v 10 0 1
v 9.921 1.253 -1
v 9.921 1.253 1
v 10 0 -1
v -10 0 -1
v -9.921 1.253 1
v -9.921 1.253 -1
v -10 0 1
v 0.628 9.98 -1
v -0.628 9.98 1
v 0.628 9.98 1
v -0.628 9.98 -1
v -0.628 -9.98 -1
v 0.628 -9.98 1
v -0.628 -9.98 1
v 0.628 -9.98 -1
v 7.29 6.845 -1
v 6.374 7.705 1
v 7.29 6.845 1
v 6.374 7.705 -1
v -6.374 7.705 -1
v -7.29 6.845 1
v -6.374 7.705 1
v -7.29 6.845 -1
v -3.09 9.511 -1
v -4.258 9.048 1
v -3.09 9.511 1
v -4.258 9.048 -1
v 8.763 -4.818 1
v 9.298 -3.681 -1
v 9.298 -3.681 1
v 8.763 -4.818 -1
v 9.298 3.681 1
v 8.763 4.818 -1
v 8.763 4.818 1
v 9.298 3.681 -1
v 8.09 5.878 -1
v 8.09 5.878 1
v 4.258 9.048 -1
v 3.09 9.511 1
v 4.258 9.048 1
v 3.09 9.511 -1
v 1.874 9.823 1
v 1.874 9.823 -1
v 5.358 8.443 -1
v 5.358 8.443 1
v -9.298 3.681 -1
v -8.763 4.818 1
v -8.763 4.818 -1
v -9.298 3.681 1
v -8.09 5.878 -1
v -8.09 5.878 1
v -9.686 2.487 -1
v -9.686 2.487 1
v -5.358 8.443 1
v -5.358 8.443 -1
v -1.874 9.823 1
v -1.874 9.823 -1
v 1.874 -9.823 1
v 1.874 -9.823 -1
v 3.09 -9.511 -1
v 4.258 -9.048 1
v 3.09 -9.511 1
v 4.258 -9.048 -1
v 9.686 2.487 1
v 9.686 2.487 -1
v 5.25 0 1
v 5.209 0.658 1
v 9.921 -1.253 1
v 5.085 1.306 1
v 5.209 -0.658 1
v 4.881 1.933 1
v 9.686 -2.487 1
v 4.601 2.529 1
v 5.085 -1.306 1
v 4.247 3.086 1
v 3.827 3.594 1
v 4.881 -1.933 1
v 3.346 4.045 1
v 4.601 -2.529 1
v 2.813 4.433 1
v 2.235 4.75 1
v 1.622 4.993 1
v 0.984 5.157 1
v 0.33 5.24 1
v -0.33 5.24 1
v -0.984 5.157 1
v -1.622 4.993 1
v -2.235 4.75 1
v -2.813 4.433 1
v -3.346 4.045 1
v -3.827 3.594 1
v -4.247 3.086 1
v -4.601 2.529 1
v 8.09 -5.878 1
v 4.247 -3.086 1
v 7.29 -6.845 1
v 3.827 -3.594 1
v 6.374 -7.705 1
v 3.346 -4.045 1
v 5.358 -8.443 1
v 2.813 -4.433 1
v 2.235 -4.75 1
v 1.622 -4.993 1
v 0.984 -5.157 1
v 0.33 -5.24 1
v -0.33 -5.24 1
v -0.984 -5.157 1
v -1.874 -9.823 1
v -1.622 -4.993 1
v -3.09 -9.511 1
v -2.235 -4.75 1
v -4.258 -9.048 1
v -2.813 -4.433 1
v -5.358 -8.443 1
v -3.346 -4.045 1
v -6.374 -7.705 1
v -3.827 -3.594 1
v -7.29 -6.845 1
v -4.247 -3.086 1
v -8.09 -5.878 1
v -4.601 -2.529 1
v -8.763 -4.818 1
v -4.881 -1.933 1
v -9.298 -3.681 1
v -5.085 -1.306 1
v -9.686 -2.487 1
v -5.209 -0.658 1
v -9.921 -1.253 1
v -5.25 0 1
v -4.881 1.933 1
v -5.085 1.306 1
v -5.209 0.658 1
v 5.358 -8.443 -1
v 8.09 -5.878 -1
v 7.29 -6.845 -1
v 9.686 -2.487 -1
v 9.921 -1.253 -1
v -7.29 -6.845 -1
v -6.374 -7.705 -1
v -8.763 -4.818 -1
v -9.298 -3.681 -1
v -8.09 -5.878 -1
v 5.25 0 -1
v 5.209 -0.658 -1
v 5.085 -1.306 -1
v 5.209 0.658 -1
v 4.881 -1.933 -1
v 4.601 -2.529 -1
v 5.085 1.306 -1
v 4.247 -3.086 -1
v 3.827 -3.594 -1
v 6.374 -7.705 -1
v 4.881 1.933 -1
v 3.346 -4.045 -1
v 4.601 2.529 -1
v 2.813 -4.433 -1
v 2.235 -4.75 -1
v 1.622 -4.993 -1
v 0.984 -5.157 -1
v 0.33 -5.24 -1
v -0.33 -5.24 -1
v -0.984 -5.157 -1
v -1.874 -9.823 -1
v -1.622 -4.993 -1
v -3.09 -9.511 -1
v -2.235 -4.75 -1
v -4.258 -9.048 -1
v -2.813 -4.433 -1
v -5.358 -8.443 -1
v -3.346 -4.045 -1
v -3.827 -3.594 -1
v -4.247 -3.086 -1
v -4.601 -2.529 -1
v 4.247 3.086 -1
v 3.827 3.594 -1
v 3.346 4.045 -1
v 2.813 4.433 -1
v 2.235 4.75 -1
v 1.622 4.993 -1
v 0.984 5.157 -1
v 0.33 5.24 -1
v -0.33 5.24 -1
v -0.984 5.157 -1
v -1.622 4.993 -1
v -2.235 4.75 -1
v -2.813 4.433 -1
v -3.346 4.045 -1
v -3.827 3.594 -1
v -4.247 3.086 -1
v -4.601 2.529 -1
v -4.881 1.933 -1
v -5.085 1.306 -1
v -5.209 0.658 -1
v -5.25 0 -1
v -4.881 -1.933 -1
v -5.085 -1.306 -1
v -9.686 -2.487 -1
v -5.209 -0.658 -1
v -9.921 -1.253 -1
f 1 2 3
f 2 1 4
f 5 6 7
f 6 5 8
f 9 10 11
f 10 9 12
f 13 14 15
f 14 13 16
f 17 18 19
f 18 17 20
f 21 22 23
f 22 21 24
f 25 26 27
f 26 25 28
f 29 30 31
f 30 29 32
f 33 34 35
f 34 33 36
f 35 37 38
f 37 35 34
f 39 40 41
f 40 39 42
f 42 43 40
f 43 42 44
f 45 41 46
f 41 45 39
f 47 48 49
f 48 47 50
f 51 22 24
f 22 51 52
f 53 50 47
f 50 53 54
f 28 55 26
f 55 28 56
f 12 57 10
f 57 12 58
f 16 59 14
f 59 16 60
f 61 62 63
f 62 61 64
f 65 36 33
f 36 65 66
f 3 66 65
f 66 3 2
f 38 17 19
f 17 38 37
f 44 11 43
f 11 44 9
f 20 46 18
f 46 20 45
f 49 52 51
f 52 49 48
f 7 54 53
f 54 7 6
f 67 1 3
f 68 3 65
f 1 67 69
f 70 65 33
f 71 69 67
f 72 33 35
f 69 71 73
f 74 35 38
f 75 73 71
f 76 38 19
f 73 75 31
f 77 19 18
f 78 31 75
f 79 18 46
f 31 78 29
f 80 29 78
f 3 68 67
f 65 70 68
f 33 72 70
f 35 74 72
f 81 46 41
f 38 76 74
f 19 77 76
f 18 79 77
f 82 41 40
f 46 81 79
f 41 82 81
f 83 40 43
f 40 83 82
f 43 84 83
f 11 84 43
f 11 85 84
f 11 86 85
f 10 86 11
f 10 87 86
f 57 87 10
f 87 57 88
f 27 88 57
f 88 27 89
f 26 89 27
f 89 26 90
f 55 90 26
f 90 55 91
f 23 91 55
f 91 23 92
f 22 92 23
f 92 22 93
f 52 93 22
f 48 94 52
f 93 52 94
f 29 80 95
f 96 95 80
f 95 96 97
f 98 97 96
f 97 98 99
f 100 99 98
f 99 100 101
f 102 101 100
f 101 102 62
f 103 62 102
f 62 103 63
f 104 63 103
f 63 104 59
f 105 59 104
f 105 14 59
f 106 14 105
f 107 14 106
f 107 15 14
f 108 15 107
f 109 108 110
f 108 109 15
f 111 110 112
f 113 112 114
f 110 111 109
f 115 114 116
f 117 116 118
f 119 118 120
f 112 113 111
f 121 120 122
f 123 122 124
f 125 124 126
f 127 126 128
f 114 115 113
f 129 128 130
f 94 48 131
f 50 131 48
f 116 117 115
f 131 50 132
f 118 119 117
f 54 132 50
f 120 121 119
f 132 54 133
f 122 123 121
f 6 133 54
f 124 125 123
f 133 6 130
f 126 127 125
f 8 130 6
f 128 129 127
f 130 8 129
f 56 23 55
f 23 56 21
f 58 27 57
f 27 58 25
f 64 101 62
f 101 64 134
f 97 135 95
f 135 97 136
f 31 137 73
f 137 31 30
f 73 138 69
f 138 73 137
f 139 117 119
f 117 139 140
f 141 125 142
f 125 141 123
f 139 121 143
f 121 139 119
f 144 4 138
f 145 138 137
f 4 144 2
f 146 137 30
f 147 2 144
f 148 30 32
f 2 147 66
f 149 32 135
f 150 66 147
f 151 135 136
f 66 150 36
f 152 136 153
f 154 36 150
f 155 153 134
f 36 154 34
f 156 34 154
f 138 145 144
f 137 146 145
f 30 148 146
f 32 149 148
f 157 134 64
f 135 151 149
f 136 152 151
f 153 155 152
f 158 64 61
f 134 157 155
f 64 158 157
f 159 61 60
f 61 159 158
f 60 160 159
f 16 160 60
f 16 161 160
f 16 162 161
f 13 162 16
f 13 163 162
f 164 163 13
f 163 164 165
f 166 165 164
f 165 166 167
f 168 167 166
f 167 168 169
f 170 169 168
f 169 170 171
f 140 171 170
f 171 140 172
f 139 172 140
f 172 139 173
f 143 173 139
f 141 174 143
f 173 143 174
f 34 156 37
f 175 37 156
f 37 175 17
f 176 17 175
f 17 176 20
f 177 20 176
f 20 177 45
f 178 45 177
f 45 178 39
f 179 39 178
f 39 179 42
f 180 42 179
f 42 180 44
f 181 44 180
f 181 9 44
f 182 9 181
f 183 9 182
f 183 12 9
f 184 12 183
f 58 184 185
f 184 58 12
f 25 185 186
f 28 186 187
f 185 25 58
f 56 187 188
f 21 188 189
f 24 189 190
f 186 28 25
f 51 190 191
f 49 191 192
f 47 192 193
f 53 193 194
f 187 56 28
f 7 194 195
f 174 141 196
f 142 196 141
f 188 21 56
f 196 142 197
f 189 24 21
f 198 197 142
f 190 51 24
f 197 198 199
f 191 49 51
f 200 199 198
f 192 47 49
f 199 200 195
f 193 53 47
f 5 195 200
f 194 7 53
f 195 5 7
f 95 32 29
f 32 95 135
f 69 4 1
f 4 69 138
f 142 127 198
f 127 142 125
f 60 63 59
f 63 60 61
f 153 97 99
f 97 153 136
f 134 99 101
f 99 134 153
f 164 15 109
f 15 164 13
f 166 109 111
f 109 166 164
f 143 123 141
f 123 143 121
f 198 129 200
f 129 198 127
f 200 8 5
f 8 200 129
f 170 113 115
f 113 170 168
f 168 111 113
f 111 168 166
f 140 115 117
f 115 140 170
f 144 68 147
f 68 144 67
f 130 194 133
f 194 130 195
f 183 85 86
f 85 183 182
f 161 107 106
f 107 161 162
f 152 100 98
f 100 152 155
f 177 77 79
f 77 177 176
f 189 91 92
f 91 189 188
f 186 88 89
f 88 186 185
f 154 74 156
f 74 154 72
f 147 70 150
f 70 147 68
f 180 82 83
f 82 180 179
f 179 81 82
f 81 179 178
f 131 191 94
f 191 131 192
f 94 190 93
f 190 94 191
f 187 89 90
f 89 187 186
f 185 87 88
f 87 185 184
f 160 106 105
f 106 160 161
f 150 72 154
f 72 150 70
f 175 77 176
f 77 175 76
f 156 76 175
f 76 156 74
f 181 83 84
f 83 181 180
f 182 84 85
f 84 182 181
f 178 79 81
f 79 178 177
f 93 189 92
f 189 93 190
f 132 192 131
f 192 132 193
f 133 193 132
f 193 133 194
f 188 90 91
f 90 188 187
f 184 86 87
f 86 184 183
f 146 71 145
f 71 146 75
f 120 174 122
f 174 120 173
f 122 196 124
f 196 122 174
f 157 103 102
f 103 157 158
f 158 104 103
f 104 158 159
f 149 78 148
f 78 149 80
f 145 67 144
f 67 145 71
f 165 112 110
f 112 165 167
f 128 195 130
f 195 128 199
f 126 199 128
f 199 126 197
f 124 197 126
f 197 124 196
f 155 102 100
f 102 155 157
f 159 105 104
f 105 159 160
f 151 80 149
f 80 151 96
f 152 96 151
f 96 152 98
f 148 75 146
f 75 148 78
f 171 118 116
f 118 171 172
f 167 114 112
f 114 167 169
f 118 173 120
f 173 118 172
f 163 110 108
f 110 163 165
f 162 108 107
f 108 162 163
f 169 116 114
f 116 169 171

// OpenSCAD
$fn = 50;


difference() {
	union() {
		translate(v = [0, 0, -1.0000000000]) {
			cylinder(h = 2, r = 10.0000000000);
		}
	}
	union() {
		translate(v = [0, 0, -100.0000000000]) {
			cylinder(h = 200, r = 5.2500000000);
		}
	}
}
